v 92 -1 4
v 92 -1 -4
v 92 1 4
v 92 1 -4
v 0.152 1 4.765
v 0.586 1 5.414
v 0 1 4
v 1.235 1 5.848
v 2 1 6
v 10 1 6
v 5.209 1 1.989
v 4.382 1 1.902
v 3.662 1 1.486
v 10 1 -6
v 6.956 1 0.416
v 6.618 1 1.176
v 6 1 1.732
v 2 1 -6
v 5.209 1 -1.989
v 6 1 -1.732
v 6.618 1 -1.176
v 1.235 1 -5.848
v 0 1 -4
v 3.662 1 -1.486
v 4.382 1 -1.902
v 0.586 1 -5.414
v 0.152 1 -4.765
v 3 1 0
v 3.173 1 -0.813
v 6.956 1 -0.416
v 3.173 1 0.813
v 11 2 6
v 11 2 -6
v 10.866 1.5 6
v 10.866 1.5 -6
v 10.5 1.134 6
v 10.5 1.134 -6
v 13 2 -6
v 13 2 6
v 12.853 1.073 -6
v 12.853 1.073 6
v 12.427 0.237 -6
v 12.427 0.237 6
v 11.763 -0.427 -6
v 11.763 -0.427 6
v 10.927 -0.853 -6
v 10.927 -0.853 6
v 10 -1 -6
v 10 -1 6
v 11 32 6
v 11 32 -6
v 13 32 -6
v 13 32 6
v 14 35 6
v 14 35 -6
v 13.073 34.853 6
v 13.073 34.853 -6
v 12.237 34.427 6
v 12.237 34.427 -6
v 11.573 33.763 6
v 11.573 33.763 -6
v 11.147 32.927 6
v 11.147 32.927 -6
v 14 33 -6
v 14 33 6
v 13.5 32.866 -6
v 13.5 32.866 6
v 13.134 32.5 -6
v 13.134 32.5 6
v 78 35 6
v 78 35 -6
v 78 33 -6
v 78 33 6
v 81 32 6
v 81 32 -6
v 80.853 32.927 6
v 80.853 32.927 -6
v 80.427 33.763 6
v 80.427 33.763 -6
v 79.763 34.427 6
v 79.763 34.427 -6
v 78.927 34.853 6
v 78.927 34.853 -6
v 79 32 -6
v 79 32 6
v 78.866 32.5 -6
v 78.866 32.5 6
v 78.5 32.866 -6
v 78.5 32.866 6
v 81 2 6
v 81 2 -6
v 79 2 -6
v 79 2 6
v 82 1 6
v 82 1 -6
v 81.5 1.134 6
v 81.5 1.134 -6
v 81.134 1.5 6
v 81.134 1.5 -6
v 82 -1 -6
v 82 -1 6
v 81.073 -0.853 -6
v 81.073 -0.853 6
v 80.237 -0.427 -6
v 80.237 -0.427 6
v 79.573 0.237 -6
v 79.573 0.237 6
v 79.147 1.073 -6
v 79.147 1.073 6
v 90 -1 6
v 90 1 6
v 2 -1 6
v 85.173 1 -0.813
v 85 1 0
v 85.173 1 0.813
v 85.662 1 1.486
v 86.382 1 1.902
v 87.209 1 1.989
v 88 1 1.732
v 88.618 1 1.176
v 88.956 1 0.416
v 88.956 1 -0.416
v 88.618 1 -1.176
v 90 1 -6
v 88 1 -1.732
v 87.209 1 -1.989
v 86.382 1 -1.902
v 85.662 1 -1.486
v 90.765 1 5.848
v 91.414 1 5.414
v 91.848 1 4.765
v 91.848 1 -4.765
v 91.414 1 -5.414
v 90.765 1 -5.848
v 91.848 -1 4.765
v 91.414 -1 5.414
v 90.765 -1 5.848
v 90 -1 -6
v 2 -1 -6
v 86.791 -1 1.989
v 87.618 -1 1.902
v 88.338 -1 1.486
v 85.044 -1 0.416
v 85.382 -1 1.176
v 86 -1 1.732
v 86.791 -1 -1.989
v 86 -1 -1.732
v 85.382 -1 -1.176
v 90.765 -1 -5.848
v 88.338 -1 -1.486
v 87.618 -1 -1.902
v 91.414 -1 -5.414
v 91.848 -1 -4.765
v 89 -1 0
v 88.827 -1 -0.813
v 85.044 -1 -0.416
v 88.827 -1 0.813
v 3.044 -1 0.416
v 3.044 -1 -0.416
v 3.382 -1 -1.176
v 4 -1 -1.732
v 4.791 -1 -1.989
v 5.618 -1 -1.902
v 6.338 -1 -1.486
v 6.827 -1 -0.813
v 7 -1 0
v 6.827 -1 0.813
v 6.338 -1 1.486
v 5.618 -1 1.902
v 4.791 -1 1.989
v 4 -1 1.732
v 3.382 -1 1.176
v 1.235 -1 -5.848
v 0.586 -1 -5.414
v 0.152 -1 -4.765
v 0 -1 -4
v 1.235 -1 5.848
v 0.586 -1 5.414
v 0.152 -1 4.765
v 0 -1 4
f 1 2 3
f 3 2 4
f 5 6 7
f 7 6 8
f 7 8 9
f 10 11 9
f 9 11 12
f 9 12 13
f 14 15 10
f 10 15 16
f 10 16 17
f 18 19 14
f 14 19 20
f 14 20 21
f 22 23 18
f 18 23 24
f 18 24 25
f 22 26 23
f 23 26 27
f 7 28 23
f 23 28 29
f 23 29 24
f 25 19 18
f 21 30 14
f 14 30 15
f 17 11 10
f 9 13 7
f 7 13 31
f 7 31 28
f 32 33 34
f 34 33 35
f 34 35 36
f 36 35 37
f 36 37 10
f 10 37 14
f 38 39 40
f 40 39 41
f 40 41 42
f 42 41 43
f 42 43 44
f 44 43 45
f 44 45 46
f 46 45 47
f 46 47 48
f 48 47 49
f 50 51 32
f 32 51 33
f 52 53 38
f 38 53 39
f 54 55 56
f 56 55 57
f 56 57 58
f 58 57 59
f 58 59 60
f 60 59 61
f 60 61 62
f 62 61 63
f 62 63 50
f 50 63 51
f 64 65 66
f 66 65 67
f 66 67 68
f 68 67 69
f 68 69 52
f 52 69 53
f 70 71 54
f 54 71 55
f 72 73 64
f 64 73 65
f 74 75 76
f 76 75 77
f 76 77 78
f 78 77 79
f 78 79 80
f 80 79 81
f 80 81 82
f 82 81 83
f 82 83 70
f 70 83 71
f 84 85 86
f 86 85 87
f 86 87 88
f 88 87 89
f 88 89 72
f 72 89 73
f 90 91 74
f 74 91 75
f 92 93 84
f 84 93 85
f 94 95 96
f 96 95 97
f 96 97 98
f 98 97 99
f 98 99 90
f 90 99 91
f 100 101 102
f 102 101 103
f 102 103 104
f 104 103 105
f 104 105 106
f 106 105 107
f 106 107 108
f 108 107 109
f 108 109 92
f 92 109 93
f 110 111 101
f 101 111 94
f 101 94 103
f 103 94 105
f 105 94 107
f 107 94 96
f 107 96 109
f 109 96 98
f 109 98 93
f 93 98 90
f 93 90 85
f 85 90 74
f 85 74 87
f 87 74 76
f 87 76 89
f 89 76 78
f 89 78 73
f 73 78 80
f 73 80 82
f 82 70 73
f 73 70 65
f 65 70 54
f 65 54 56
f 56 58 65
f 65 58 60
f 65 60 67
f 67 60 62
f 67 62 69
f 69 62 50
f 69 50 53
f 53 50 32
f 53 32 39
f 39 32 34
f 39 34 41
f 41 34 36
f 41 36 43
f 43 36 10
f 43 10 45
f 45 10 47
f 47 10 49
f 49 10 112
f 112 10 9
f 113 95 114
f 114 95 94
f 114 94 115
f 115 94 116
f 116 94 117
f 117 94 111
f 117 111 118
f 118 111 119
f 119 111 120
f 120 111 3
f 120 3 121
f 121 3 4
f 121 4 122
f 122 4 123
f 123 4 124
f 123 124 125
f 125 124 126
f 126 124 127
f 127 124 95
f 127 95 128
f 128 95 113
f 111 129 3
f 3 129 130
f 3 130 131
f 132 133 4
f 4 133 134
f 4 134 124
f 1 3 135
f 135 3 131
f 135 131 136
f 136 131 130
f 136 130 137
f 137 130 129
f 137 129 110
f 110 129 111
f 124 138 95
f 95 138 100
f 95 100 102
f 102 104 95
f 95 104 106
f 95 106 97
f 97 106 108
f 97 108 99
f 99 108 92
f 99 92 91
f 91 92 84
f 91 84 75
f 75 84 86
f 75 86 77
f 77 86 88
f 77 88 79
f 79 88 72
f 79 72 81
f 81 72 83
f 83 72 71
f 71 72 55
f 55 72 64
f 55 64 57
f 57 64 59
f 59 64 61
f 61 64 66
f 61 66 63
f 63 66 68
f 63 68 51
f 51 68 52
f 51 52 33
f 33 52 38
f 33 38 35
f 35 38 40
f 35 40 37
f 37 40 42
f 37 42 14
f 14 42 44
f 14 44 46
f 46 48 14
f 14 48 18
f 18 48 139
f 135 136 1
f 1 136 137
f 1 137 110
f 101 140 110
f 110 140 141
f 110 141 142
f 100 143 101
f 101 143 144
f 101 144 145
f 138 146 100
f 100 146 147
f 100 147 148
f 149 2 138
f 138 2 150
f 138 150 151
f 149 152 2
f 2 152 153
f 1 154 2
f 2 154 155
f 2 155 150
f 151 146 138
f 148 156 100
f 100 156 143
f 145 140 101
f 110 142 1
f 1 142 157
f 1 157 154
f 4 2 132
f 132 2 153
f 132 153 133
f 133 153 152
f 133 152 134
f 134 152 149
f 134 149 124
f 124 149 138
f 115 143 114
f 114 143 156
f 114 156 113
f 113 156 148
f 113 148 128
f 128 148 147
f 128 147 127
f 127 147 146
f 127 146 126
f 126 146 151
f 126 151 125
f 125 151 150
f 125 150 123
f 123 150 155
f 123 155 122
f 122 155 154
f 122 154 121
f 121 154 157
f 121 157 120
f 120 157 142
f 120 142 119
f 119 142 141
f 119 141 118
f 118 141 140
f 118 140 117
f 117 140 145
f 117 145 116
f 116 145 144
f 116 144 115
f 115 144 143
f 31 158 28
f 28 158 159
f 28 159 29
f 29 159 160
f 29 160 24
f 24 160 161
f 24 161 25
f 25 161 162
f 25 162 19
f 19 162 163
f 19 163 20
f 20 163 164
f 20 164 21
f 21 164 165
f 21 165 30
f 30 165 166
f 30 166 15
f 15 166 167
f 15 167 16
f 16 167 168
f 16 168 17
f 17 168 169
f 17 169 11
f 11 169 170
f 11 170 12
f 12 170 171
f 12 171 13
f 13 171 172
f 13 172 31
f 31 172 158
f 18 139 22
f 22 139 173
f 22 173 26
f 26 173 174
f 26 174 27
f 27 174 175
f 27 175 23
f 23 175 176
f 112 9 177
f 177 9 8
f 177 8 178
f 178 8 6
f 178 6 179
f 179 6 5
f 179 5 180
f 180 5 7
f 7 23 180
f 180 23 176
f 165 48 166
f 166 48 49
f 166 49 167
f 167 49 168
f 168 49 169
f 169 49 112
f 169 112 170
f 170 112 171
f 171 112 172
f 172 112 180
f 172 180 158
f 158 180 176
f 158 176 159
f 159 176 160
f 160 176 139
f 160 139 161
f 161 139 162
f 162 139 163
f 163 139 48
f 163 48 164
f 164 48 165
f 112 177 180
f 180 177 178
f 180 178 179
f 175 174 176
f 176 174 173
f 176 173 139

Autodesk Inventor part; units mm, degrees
ref_plane "YZ Plane" through (0, 0, 0) normal (1, 0, 0) x (0, 1, 0)
ref_plane "XZ Plane" through (0, 0, 0) normal (0, 1, 0) x (-1, 0, 0)
sketch "Skizze1" plane through (0, 0, 0) normal (0, 0, 1) x (1, 0, 0)
  line L0 (12, 2) -> (12, 32)
  line L1 (80, 2) -> (80, 32)
  arc A0 (14, 34) -> (12, 32) centre (14, 32) ccw
  arc A1 (80, 32) -> (78, 34) centre (78, 32) ccw
  line L2 (10, 0) -> (0, 0)
  line L3 (82, 0) -> (92, 0)
  arc A2 (80, 2) -> (82, 0) centre (82, 2) ccw
  arc A3 (10, 0) -> (12, 2) centre (10, 2) ccw
  line L4 (78, 34) -> (14, 34)
  dimension "d1" = 30
  dimension "d2" = 30
  dimension "d3" = 2
  dimension "d7" = 2
  dimension "d29" = 2
  dimension "d30" = 2
  dimension "d31" = 92
  dimension "d32" = 10
  dimension "d33" = 10
ref_plane "Arbeitsebene1" through (0, 0, 0) normal (-1, 0, 0) x (0, -1, 0)
sketch "Skizze2" plane through (0, 0, 0) normal (-1, 0, 0) x (0, -1, 0)
  line L0 (-1, 6) -> (1, 6)
  line L1 (1, 6) -> (1, -6)
  line L2 (1, -6) -> (-1, -6)
  line L3 (-1, -6) -> (-1, 6)
  point P0 (0, 0)
  point P1 (1, 0)
  dimension "d15" = 12
  dimension "d16" = 6
  dimension "d17" = 1
  dimension "d18" = 2
sweep "Sweeping1" add profiles "Skizze2" path "Skizze1"
sketch "Skizze4" plane through (0, -1, 6) normal (0, -1, 0) x (1, 0, 0)
  circle A0 centre (5, -6) radius 2
  circle A1 centre (87, -6) radius 2
  line L0 (0, -12) -> (0, 0) projected
  line L1 (92, -12) -> (92, 0) projected
  line L2 (92, 0) -> (82, 0) projected
  point P0 (0, -6)
  dimension "d37" = 4
  dimension "d38" = 4
  dimension "d39" = 5
  dimension "d40" = 5
  dimension "d41" = 6
extrude "Extrusion2" cut sketch "Skizze4" against normal blind 4
fillet "Rundung1" radius 2 4 edges at (92, 0, -6) (92, 0, 6) (0, 0, -6) (0, 0, 6)
equation "\"d1\" = d2"
equation "\"d3\" = d4"
equation "\"d7\" = d4"
equation "\"d4\" = 2"
properties part number "Handle"
